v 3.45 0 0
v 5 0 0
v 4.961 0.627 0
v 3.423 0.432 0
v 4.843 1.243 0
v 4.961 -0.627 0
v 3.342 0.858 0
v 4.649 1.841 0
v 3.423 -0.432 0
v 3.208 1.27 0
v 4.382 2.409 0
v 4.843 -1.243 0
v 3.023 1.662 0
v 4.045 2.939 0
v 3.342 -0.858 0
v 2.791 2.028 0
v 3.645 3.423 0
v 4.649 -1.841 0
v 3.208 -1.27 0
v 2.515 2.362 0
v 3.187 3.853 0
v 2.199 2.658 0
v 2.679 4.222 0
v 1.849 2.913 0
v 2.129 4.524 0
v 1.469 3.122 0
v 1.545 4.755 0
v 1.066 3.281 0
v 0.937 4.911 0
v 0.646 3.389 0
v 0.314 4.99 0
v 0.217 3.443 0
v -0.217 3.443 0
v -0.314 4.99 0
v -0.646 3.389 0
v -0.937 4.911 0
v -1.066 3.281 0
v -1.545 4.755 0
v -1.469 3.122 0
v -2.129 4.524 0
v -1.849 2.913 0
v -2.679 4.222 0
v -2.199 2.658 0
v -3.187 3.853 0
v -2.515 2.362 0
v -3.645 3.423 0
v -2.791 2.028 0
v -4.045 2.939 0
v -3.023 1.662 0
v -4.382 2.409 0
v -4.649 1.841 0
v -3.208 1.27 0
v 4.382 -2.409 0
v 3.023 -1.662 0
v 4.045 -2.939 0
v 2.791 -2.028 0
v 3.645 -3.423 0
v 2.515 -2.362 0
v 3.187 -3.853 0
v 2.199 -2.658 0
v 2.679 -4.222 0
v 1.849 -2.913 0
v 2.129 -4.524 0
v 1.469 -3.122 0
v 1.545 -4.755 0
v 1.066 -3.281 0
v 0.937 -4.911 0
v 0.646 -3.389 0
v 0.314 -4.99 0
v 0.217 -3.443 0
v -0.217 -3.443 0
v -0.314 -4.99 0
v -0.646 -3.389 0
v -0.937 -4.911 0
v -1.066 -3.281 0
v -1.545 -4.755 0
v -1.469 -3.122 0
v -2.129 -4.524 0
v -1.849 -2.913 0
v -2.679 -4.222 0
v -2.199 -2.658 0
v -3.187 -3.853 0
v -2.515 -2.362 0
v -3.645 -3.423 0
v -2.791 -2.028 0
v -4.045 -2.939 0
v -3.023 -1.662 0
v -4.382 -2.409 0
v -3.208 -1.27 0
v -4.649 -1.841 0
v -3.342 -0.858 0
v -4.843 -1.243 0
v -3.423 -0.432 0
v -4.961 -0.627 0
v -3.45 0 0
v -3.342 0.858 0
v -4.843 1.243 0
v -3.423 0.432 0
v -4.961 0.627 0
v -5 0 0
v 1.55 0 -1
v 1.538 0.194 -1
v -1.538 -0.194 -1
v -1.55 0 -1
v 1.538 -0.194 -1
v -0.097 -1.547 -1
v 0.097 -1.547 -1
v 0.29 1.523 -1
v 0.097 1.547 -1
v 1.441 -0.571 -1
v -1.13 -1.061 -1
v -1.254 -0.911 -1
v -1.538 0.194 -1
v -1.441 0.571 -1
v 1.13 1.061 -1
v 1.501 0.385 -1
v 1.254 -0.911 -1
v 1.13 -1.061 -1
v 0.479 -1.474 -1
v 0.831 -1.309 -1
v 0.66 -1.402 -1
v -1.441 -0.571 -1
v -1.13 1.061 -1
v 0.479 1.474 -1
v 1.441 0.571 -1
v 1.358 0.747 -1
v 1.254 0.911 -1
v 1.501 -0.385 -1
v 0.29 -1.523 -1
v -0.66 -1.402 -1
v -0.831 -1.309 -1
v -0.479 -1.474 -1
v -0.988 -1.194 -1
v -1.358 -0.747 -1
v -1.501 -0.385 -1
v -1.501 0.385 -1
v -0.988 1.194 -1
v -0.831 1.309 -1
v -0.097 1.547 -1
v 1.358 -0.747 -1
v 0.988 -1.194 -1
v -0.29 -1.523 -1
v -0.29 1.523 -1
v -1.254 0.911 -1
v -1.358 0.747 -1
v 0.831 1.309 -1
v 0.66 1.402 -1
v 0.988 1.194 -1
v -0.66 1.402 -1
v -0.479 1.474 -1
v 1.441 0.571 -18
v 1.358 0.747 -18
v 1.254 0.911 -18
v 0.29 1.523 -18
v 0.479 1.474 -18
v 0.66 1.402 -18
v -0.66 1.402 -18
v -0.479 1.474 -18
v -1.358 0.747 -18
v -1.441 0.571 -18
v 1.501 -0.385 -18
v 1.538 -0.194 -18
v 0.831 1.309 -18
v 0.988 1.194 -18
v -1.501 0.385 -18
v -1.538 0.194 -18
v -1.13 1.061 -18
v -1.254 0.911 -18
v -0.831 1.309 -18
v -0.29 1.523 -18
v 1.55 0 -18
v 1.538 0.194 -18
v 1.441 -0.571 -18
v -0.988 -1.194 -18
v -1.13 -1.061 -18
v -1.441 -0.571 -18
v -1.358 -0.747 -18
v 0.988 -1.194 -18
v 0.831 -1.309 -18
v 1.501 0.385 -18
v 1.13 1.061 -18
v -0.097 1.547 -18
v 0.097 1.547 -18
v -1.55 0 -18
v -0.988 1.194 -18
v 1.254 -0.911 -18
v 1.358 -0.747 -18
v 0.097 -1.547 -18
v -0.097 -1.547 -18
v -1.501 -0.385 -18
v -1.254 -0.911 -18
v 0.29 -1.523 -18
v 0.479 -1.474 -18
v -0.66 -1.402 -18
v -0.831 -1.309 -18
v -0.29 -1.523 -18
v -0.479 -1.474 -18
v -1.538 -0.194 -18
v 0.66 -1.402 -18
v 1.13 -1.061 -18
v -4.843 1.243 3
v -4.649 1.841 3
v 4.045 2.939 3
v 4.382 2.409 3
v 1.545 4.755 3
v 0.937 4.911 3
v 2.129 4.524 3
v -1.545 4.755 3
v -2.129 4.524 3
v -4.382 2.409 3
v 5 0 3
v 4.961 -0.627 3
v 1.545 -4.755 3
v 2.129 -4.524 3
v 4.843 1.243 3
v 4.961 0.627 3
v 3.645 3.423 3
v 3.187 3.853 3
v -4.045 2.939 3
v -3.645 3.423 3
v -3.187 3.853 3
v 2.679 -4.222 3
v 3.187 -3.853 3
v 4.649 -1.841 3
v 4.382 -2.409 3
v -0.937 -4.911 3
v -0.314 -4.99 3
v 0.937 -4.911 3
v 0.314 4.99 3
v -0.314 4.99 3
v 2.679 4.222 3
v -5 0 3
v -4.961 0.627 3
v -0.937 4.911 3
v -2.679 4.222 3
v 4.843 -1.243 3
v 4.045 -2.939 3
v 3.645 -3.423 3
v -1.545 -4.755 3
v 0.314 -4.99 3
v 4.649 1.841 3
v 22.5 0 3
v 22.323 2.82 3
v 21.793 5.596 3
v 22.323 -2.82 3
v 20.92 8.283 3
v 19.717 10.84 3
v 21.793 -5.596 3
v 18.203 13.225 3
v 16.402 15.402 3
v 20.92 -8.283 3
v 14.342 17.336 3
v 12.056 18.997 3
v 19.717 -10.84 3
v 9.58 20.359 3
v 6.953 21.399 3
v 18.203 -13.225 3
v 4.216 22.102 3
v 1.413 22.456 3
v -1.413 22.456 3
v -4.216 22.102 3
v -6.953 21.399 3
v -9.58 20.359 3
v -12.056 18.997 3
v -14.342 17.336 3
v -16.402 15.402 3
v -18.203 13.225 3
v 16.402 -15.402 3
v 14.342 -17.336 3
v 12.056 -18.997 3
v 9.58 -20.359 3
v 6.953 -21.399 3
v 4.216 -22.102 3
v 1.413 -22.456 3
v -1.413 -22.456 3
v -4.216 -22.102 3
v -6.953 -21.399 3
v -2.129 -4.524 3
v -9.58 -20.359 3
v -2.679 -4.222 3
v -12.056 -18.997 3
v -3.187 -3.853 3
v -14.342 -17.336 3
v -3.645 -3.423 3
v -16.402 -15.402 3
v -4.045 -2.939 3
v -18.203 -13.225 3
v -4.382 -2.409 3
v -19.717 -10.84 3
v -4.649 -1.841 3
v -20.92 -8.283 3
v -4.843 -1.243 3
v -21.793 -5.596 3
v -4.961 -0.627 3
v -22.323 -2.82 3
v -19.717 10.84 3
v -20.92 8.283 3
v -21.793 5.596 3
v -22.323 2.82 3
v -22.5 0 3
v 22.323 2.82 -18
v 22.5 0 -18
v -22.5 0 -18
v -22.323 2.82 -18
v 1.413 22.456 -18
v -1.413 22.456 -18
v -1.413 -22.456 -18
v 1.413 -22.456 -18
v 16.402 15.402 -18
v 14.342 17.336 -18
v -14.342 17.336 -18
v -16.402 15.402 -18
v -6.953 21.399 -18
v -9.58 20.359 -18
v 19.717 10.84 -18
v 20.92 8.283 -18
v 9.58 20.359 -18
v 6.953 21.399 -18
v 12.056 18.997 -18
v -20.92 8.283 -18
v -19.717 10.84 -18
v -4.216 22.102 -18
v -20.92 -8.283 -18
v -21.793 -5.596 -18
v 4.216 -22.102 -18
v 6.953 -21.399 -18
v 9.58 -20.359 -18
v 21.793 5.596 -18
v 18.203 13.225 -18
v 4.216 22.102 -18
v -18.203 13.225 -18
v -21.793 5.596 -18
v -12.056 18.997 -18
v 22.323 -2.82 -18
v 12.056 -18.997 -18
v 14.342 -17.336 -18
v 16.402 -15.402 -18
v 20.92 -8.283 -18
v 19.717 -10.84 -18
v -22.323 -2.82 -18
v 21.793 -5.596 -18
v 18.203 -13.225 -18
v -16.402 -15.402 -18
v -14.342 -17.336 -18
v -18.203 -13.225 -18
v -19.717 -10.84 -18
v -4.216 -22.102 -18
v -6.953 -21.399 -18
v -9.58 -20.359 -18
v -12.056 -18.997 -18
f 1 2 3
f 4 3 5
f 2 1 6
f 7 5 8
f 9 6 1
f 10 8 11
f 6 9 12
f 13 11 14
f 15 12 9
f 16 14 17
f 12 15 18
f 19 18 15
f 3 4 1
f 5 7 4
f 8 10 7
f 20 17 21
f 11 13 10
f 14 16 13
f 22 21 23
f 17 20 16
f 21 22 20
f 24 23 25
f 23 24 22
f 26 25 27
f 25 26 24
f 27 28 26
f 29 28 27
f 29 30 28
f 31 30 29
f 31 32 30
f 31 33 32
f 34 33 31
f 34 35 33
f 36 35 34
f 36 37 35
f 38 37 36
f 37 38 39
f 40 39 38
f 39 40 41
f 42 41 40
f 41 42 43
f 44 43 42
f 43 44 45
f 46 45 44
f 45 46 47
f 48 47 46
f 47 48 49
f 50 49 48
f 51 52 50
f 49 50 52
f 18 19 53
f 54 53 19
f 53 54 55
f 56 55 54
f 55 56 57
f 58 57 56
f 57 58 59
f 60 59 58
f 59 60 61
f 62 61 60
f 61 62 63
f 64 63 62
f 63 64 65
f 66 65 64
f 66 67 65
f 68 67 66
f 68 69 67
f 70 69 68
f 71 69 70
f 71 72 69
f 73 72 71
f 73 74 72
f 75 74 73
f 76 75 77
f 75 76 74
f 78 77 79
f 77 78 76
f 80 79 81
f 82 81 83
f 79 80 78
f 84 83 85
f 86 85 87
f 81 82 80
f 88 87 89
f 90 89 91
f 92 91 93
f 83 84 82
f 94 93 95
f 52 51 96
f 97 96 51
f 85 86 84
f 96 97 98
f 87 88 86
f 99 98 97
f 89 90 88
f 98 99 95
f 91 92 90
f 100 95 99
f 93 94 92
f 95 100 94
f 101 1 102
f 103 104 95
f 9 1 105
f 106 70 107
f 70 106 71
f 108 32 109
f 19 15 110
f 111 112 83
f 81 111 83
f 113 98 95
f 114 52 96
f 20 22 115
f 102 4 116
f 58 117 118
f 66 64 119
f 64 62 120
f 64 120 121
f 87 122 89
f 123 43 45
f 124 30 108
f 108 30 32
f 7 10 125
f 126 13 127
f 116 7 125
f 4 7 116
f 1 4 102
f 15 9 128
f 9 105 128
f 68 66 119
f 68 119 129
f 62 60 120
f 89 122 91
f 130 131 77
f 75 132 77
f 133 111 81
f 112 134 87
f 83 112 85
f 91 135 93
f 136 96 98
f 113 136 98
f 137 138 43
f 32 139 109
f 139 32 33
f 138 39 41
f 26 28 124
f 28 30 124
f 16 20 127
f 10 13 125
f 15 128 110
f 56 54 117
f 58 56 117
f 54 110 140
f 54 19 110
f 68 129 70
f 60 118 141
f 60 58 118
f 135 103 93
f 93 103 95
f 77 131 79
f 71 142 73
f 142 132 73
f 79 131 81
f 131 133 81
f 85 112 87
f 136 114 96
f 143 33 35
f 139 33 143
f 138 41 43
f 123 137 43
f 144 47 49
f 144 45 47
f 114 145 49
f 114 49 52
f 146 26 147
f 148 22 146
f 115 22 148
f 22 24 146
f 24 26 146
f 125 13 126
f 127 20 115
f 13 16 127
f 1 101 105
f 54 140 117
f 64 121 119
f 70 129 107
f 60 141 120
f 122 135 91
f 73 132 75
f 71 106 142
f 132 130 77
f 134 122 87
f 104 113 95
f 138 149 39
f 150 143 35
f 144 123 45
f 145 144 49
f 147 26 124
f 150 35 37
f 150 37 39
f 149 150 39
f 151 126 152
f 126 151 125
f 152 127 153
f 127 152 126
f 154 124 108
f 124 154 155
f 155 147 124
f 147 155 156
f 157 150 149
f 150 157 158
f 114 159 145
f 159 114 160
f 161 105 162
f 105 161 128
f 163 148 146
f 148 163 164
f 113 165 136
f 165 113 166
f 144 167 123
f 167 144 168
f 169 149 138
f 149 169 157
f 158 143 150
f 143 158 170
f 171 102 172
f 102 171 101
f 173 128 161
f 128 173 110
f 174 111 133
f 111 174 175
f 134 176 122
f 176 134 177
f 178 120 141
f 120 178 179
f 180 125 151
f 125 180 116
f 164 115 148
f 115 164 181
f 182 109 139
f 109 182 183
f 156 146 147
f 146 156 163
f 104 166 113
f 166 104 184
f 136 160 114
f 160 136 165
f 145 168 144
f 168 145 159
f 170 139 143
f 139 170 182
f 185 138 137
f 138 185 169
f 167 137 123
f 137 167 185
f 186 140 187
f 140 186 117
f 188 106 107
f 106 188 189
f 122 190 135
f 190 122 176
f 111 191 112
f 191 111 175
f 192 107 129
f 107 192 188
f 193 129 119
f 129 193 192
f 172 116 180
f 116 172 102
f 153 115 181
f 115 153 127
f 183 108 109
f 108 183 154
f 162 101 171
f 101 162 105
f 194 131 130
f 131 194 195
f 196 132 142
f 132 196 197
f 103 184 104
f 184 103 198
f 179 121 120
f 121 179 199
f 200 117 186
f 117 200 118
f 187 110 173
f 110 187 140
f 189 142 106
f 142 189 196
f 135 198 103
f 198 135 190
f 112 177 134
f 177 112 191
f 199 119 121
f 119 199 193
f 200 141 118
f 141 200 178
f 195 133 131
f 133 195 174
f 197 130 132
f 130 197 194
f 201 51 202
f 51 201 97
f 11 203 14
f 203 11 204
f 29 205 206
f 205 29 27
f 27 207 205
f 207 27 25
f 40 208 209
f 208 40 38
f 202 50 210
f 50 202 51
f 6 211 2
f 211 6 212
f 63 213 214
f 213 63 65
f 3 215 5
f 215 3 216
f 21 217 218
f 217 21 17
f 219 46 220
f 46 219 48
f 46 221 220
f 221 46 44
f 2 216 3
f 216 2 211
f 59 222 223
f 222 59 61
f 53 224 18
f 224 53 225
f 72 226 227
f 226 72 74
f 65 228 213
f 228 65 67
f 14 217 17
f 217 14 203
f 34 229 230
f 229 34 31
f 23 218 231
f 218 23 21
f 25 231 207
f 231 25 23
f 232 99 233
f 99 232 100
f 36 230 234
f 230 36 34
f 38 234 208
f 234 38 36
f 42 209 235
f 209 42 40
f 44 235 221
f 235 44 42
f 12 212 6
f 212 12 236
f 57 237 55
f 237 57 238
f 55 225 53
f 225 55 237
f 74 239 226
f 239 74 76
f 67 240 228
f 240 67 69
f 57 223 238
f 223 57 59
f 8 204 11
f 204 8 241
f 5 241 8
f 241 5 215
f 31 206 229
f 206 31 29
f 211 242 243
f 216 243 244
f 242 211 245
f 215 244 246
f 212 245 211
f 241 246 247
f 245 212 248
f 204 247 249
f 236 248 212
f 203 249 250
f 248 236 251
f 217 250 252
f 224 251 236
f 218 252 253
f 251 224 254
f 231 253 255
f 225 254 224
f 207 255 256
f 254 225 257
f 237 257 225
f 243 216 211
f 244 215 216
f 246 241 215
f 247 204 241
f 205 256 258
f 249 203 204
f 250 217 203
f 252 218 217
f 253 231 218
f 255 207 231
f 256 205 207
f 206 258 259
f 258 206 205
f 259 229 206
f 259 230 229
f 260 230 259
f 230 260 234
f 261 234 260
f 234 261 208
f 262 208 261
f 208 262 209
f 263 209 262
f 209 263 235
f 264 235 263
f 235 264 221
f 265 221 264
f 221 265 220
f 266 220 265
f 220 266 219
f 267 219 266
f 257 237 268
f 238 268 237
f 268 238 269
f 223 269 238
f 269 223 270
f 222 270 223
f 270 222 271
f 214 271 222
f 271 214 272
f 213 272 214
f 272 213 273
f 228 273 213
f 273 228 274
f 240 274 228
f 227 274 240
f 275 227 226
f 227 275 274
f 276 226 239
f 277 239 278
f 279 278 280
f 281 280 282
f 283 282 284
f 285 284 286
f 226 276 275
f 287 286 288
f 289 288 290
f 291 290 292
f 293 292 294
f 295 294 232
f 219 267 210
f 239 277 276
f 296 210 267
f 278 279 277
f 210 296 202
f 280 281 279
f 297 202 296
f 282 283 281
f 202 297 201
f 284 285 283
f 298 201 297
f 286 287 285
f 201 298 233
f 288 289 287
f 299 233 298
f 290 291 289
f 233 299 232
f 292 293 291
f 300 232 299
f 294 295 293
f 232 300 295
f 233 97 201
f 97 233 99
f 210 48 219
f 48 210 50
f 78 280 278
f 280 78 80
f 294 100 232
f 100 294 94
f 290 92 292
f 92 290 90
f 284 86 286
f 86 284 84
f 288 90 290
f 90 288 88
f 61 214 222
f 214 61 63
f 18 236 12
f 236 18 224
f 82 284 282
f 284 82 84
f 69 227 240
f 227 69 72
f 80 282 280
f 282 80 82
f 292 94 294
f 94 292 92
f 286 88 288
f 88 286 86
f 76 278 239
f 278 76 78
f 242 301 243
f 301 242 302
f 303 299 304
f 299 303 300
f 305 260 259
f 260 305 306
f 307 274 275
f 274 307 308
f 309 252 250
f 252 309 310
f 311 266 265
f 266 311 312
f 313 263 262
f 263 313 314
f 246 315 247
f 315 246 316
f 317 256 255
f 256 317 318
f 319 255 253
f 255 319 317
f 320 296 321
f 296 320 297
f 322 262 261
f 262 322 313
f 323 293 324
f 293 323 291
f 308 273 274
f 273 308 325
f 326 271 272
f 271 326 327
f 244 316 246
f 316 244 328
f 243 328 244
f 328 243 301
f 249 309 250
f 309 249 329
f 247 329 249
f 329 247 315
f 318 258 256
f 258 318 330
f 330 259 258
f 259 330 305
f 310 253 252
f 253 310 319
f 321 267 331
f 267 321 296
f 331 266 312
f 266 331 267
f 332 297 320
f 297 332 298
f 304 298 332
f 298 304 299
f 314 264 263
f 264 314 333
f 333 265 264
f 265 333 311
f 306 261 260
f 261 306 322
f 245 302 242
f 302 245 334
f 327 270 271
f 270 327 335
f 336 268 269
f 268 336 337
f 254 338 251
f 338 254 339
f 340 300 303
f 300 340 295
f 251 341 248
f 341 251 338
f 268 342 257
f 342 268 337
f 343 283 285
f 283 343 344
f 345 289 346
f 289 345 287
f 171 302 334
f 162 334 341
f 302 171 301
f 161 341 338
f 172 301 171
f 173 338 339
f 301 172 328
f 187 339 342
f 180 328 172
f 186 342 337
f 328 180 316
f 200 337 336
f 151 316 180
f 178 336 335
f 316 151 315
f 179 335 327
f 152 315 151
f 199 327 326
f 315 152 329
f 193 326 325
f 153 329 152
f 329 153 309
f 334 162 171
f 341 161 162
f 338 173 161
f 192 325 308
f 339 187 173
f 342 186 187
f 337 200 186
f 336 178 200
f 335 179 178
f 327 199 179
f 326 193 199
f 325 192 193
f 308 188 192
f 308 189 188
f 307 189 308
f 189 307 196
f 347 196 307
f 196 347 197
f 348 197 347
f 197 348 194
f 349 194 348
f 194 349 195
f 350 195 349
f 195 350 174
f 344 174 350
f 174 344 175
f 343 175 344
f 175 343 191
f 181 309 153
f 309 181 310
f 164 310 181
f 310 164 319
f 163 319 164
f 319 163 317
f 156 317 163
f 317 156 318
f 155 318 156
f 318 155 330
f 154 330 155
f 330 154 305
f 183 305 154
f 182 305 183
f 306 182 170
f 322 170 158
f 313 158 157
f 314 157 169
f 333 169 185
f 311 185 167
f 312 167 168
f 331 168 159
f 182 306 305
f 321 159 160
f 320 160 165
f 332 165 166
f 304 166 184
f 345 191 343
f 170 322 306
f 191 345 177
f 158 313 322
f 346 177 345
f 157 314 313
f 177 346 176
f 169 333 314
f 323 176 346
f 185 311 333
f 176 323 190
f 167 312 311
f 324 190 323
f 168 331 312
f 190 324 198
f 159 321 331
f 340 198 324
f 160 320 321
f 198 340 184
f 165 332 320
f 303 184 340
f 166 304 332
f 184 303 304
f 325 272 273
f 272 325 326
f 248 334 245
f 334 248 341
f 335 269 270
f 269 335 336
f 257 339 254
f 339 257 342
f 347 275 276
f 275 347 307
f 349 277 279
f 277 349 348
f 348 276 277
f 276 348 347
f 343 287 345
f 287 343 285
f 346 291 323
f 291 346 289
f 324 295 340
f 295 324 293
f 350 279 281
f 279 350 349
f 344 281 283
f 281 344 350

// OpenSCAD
$fn = 50;


difference() {
	union() {
		translate(v = [0, 0, -18.0000000000]) {
			cylinder(h = 21, r = 22.5000000000);
		}
	}
	union() {
		translate(v = [0, 0, 0]) {
			rotate(a = [0, 0, 0]) {
				difference() {
					union() {
						translate(v = [0, 0, -21.0000000000]) {
							cylinder(h = 21, r = 1.2500000000);
						}
						translate(v = [0, 0, -1.0000000000]) {
							cylinder(h = 1.0000000000, r1 = 1.5500000000, r2 = 3.4500000000);
						}
						translate(v = [0, 0, -21.0000000000]) {
							cylinder(h = 21, r = 1.5500000000);
						}
						translate(v = [0, 0, -21.0000000000]) {
							cylinder(h = 21, r = 1.2500000000);
						}
					}
					union();
				}
			}
		}
		#cylinder(h = 3, r = 5.0000000000);
	}
}
